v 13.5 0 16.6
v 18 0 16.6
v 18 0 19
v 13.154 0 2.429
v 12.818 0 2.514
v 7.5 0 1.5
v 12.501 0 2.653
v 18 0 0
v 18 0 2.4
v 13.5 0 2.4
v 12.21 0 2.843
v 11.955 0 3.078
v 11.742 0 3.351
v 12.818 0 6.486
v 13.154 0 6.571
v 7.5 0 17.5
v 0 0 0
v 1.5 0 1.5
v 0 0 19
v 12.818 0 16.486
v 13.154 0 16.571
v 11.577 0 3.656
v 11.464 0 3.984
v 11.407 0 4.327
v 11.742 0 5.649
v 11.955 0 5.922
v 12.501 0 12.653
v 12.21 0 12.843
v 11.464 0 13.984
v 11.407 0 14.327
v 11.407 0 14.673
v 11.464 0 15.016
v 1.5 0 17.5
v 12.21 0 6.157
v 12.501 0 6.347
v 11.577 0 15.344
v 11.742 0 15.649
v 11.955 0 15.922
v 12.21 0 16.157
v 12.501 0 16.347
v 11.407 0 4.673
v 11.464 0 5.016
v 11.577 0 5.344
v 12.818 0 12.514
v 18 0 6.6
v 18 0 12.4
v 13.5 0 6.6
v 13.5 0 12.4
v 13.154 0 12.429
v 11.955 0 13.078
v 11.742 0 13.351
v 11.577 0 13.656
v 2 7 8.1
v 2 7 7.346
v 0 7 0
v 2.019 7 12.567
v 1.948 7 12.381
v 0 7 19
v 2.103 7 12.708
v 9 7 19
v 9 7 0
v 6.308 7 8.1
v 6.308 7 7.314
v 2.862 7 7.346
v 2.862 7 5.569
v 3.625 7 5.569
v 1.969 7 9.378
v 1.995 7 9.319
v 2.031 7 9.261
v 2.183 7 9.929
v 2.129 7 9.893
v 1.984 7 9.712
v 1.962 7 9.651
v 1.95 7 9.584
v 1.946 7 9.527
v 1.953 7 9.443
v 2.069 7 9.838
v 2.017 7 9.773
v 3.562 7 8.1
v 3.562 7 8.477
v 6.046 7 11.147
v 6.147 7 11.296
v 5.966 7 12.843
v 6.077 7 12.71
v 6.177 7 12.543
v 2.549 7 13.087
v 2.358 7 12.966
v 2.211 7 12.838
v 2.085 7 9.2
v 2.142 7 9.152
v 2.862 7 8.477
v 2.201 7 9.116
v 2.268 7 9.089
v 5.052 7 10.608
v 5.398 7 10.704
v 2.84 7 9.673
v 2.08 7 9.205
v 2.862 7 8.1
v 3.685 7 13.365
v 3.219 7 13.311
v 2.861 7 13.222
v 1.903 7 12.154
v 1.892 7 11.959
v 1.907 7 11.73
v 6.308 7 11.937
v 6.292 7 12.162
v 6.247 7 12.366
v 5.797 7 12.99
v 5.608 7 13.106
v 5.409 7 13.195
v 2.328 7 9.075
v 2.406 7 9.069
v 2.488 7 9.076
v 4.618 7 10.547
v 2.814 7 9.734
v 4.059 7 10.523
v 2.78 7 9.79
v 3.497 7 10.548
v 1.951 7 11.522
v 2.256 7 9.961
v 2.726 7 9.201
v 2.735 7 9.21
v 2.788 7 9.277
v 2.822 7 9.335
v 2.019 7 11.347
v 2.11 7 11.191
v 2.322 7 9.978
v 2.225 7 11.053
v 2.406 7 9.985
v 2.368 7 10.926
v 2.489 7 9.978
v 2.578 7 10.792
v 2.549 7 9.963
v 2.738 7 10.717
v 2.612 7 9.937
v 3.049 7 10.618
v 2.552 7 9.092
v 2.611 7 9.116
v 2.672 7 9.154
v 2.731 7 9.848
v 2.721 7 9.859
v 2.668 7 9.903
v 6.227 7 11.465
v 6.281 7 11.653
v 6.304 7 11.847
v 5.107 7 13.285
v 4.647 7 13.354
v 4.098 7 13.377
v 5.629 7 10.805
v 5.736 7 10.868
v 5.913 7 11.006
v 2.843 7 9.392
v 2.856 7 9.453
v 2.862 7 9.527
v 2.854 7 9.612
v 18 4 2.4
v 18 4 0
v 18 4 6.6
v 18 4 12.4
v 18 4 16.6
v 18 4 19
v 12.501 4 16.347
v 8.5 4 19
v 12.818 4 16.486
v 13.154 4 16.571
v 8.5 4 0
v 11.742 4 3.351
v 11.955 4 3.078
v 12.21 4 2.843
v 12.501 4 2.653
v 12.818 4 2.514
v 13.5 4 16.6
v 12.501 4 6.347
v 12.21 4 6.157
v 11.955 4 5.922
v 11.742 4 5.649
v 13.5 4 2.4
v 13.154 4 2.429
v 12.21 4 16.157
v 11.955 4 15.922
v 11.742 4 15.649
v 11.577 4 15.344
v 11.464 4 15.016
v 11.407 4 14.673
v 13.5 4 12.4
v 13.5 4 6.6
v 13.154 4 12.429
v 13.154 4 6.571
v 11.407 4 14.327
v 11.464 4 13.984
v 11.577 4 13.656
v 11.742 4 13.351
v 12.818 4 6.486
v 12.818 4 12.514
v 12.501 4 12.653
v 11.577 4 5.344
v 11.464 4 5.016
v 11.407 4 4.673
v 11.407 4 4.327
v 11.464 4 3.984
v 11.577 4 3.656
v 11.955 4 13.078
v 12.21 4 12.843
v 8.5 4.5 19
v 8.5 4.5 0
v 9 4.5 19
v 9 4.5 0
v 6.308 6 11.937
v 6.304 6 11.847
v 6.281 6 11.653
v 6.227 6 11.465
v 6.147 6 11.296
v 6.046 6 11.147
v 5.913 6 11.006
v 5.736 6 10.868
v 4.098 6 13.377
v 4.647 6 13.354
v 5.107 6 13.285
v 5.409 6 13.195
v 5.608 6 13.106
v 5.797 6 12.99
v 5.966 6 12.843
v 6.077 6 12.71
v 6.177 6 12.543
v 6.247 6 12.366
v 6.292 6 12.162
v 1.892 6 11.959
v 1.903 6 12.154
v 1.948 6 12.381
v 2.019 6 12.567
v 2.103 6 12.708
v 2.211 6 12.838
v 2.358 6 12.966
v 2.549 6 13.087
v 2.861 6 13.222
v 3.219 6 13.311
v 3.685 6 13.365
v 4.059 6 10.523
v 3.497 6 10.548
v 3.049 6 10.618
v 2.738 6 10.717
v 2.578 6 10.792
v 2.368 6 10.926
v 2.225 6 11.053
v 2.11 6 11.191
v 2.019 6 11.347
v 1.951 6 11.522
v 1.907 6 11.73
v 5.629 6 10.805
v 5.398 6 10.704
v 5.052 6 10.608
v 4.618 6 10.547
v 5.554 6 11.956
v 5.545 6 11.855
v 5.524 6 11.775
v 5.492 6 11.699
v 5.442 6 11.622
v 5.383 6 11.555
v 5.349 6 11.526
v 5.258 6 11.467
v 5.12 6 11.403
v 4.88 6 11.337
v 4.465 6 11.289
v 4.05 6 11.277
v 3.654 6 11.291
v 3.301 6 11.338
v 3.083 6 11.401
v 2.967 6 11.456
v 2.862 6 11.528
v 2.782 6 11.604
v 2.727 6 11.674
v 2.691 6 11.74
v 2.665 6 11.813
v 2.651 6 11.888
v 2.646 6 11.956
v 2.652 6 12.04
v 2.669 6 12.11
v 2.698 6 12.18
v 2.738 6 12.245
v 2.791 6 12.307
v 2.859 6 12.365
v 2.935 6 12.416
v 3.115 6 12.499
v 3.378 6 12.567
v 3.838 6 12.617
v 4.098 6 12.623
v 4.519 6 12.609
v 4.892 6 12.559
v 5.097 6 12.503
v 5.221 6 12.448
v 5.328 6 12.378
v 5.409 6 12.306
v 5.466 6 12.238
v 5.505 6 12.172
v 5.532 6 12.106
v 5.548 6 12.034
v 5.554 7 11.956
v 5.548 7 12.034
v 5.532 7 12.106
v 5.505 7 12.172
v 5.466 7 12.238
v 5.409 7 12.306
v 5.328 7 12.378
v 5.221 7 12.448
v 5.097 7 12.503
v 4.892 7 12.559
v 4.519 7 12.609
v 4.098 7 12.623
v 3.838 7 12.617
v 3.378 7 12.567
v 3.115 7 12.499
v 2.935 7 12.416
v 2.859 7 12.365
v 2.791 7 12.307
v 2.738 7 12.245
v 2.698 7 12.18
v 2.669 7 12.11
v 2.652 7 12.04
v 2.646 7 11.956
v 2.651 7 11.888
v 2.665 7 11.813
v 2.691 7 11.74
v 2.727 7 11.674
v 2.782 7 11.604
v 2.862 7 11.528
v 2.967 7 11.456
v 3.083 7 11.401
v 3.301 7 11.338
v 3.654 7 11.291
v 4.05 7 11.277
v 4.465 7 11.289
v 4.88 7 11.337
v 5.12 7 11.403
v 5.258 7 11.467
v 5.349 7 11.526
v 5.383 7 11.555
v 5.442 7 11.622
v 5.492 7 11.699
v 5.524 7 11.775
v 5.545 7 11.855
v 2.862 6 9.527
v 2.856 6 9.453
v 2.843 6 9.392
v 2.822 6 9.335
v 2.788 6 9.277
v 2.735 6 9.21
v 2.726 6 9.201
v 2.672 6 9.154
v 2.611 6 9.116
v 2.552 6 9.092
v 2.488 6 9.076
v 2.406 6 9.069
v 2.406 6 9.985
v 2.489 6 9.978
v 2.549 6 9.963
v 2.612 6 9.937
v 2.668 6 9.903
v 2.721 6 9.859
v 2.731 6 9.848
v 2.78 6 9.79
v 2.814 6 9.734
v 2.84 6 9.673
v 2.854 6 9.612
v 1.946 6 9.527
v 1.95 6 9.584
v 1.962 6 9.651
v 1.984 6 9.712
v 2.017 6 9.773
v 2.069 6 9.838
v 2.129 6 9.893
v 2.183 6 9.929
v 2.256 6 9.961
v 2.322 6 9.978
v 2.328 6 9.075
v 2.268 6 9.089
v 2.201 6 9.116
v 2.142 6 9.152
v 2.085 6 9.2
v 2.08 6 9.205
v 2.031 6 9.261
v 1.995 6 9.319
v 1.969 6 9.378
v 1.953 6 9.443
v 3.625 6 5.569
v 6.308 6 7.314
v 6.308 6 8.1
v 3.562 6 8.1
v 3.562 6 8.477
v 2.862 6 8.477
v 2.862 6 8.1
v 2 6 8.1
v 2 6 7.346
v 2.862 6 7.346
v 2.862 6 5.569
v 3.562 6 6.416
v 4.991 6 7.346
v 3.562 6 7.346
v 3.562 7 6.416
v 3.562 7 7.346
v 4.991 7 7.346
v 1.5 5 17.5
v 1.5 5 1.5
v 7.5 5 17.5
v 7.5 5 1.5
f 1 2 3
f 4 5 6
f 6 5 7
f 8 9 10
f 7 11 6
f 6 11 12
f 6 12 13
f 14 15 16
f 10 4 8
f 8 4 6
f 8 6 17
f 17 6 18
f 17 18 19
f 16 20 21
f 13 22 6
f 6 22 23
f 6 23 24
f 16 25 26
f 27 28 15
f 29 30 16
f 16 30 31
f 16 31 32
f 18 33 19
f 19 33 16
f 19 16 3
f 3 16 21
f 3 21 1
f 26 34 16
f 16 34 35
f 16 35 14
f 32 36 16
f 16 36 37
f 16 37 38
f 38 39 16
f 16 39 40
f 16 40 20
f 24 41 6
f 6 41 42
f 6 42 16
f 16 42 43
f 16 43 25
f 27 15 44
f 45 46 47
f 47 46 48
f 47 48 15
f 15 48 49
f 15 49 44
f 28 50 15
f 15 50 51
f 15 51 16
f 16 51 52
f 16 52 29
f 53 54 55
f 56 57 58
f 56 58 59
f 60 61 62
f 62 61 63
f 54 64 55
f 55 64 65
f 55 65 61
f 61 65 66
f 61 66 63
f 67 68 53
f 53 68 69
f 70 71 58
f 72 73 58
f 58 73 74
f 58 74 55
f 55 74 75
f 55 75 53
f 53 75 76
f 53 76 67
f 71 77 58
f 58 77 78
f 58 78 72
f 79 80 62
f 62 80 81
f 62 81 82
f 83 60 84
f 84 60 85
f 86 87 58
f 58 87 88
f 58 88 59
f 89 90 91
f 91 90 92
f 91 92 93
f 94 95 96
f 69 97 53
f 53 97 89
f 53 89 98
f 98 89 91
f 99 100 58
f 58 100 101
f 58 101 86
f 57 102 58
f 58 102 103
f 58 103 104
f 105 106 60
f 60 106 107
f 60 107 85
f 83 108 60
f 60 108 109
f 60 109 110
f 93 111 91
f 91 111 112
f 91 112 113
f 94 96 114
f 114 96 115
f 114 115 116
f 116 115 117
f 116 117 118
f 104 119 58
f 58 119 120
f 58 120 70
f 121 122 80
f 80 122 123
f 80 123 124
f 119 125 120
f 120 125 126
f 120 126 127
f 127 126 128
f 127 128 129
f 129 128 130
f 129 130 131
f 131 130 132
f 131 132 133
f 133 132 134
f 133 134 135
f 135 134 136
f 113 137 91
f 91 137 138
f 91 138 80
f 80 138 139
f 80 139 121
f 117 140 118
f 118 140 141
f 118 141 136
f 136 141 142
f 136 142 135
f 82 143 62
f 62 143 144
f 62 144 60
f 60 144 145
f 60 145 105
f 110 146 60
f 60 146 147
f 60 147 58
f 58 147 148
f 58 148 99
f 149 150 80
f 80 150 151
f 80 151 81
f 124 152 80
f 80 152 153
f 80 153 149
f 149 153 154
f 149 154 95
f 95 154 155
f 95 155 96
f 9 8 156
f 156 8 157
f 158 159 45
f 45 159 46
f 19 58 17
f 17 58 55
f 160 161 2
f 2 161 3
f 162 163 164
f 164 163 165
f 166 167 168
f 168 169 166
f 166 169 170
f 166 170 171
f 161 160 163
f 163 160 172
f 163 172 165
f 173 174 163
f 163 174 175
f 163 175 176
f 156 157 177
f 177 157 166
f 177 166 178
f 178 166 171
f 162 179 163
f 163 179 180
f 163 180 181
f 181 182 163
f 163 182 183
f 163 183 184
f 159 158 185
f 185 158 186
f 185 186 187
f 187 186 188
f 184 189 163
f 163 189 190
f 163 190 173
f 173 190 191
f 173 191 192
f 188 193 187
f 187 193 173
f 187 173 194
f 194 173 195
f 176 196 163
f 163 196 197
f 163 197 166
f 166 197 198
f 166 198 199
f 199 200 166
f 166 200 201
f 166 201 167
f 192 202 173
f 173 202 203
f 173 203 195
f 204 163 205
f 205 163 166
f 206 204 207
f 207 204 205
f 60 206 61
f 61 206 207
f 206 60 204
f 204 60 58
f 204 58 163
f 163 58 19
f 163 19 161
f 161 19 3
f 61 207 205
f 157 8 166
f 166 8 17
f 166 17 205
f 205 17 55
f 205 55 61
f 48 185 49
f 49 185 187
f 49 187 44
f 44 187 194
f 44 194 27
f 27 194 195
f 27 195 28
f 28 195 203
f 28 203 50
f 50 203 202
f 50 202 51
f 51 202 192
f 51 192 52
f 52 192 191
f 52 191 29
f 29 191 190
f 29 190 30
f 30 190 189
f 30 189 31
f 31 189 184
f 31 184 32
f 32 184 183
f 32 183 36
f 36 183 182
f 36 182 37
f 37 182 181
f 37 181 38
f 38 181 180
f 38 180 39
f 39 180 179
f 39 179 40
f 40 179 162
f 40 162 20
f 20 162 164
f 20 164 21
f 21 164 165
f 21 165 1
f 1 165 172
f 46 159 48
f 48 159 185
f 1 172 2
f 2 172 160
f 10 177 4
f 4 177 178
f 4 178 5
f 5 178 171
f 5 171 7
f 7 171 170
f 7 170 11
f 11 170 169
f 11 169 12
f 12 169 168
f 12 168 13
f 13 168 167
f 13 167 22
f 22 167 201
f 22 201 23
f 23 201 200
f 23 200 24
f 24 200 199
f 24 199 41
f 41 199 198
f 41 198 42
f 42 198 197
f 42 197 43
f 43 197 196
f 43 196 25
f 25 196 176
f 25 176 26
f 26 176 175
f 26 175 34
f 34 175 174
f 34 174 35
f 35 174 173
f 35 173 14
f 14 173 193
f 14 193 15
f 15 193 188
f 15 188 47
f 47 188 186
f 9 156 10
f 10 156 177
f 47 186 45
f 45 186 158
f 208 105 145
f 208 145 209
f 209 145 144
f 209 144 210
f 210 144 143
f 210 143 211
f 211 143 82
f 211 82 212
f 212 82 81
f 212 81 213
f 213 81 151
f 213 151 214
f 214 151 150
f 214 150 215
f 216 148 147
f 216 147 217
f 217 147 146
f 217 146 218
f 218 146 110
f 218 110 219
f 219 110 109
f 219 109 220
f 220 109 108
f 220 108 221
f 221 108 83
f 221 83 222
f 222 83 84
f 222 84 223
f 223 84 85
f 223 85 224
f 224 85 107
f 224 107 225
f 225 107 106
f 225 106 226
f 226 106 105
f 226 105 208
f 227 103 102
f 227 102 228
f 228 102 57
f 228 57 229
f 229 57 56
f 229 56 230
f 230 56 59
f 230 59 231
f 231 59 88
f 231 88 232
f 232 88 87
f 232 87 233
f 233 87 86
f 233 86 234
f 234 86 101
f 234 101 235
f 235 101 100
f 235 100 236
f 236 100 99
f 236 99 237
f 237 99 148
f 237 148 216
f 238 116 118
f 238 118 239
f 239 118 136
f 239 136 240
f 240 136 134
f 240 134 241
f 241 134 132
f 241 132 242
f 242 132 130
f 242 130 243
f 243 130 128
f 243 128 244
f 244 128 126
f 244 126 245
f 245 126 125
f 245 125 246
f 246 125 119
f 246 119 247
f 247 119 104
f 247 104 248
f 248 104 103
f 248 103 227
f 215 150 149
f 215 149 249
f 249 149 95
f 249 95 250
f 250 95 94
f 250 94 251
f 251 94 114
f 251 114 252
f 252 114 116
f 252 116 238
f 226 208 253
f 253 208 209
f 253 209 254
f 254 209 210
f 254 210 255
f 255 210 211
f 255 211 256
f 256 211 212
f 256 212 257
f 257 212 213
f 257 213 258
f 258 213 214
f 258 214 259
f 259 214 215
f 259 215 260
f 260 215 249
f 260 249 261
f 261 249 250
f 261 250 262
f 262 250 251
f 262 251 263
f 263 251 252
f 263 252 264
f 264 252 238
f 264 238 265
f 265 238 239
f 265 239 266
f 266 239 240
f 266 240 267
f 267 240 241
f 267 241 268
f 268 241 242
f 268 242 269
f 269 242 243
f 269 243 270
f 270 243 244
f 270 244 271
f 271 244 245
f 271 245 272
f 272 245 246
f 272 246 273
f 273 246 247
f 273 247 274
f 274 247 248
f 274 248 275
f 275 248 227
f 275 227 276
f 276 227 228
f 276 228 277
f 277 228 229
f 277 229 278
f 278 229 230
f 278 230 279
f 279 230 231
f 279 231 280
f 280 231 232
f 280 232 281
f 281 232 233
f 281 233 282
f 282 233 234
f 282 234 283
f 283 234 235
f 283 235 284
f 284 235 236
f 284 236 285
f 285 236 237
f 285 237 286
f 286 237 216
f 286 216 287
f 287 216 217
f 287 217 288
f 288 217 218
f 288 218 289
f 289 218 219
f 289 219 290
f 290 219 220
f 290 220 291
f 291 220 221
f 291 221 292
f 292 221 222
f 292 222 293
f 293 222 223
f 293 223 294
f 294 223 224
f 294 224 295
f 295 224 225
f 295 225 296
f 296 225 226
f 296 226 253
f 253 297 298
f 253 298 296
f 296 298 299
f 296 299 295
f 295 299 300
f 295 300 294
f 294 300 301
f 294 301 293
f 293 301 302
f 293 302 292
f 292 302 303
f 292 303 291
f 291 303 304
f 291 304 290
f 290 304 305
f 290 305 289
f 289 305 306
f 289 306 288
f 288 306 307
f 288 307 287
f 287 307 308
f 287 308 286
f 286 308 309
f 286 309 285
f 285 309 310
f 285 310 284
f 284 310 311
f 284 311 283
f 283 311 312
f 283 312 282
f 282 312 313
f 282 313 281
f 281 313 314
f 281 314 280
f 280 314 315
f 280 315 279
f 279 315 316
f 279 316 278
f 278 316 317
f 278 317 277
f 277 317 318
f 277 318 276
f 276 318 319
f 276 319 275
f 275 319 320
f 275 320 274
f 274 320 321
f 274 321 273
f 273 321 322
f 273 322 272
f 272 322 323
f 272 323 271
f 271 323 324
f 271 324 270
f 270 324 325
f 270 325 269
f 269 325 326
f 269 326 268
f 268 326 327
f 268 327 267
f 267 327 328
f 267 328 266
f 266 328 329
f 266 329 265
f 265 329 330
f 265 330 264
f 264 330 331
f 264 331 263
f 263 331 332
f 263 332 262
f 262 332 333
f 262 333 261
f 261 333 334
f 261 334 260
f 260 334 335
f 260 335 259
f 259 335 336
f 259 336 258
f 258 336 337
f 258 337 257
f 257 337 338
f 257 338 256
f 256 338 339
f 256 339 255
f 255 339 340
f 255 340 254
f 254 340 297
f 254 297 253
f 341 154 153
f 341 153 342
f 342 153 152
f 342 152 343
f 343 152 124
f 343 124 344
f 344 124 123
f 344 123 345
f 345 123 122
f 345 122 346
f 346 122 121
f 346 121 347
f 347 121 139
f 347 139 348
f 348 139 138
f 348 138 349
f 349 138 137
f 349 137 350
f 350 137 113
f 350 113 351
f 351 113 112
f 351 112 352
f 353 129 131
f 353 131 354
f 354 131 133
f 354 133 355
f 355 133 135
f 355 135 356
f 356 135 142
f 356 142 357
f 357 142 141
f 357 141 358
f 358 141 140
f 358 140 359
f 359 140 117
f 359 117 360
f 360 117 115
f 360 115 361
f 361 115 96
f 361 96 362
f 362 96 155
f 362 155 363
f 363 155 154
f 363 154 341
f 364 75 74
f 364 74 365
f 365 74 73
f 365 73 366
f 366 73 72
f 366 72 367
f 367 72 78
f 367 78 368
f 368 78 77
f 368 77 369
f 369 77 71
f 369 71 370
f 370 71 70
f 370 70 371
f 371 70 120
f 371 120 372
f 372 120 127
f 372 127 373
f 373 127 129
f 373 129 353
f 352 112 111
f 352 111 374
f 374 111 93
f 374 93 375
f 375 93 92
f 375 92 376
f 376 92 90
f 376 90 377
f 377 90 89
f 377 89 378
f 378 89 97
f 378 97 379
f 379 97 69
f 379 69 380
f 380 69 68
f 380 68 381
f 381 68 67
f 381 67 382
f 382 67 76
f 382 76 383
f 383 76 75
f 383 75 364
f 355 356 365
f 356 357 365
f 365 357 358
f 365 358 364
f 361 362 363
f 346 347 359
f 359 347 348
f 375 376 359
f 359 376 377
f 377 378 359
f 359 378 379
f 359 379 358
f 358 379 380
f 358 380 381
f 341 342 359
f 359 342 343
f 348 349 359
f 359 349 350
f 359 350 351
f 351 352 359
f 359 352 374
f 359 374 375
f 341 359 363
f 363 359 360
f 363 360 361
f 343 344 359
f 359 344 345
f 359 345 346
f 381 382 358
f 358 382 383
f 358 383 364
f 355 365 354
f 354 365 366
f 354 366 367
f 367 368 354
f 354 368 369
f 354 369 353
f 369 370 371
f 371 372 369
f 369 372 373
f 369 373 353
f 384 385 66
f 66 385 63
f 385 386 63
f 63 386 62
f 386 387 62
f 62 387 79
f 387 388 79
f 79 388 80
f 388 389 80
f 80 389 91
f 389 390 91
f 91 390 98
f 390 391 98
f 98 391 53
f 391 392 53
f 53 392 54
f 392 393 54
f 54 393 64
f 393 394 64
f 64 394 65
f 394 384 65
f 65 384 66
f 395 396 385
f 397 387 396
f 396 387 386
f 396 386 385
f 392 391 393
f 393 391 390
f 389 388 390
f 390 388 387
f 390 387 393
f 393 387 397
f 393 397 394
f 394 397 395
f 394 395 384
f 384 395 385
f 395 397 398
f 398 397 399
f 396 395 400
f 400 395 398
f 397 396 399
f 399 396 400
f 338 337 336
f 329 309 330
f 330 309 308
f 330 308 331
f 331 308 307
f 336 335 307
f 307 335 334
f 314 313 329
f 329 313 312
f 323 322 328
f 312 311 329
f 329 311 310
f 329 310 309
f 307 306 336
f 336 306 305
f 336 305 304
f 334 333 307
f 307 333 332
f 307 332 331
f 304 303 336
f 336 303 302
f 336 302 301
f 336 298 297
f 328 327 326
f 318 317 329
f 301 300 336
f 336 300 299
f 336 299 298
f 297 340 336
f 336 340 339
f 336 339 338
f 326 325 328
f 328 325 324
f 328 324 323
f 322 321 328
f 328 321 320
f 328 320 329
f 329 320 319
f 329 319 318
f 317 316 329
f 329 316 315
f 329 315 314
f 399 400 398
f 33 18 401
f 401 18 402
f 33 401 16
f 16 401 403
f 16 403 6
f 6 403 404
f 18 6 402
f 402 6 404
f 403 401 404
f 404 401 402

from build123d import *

# Parameters (mm, degrees)
BOSS_EXTRUDE1_DEPTH = 19
CUT_EXTRUDE1_DEPTH  = 28.092434368
CUT_EXTRUDE2_DEPTH  = 1
SKETCH4_W           = 6
SKETCH4_H           = 16
CUT_EXTRUDE3_DEPTH  = 5


with BuildPart() as part:
    # Sketch1 → Boss-Extrude1 (new body)
    with BuildSketch(Plane.XY):
        Polygon((0, 0), (18, 0), (18, 4), (9, 4), (8.5, 4), (8.5, 4.5), (9, 4.5), (9, 7), (0, 7), align=None)
    extrude(amount=BOSS_EXTRUDE1_DEPTH)

    # Sketch2 → Cut-Extrude1 (cut, through all)
    with BuildSketch(Plane(origin=(0, 7, 0), x_dir=(1, 0, 0), z_dir=(0, 1, 0))):
        with BuildLine():
            Line((13.5, -2.4), (18, -2.4))
            Line((18, -2.4), (18, -6.6))
            Line((18, -6.6), (13.5, -6.6))
            ThreePointArc((13.5, -6.6), (11.4, -4.5), (13.5, -2.4))
        make_face()
        with BuildLine():
            Line((13.5, -12.4), (18, -12.4))
            Line((18, -12.4), (18, -16.6))
            Line((18, -16.6), (13.5, -16.6))
            ThreePointArc((13.5, -16.6), (11.4, -14.5), (13.5, -12.4))
        make_face()
    extrude(amount=-CUT_EXTRUDE1_DEPTH, mode=Mode.SUBTRACT)

    # Sketch3 → Cut-Extrude2 (cut)
    # profile 1 of 3: a face of its own
    with BuildSketch(Plane(origin=(0, 7, 0), x_dir=(1, 0, 0), z_dir=(0, 1, 0))):
        Polygon((6.307692308, -7.314182692), (6.307692308, -8.1), (3.561538462, -8.1), (3.561538462, -8.476923077), (2.861538462, -8.476923077), (2.861538462, -8.1), (2, -8.1), (2, -7.346153846), (2.861538462, -7.346153846), (2.861538462, -5.569230769), (3.624639423, -5.569230769), align=None)
        Polygon((3.561538462, -7.346153846), (4.990985577, -7.346153846), (3.561538462, -6.416466346), align=None, mode=Mode.SUBTRACT)
    # profile 2 of 3: a face of its own
    with BuildSketch(Plane(origin=(0, 7, 0), x_dir=(1, 0, 0), z_dir=(0, 1, 0))):
        with BuildLine():
            add(Edge.make_bspline(
                [(2.861538462, -9.526923077), (2.85988287, -9.557362204), (2.856623295, -9.617291589), (2.831853959, -9.703995704), (2.788312606, -9.782702644), (2.730502257, -9.85257974), (2.661701966, -9.911911527), (2.582376507, -9.953401025), (2.496427686, -9.98023852), (2.436302157, -9.983133621), (2.405528846, -9.984615385)],
                knots=[0, 0, 0, 0, 1.016476041, 2.001265769, 2.982571086, 4.001334304, 5.018889842, 5.99575474, 6.974191785, 8, 8, 8, 8], degree=3))
            add(Edge.make_bspline(
                [(2.405528846, -9.984615385), (2.374750787, -9.983143332), (2.31461598, -9.980267206), (2.228495667, -9.95321757), (2.148526587, -9.911977622), (2.078984136, -9.852574786), (2.020088959, -9.78299344), (1.976959039, -9.703815063), (1.950796284, -9.617456418), (1.947716214, -9.557391196), (1.946153846, -9.526923077)],
                knots=[0, 0, 0, 0, 1.022731703, 1.998234309, 2.980426153, 4.002090265, 5.023754376, 6.00211665, 6.986572482, 8, 8, 8, 8], degree=3))
            add(Edge.make_bspline(
                [(1.946153846, -9.526923077), (1.947729022, -9.496462175), (1.950834344, -9.436411182), (1.976740674, -9.350186567), (2.020380314, -9.271588463), (2.078913136, -9.202024595), (2.14877397, -9.142885964), (2.228244922, -9.100439216), (2.314648555, -9.073639214), (2.374761815, -9.070723224), (2.405528846, -9.069230769)],
                knots=[0, 0, 0, 0, 1.013910294, 1.9988351, 2.969460266, 3.991611077, 5.013761889, 6.000813773, 6.976781088, 8, 8, 8, 8], degree=3))
            add(Edge.make_bspline(
                [(2.405528846, -9.069230769), (2.436290937, -9.070733066), (2.496394544, -9.073668284), (2.582630141, -9.100255237), (2.661453239, -9.142949764), (2.730573405, -9.202019856), (2.788023525, -9.271877769), (2.832069332, -9.350006935), (2.856584954, -9.436576095), (2.859869955, -9.496491201), (2.861538462, -9.526923077)],
                knots=[0, 0, 0, 0, 1.02629359, 2.005193596, 2.986963232, 4.00500024, 5.0242455, 5.997787305, 6.983042999, 8, 8, 8, 8], degree=3))
        make_face()
    # profile 3 of 3: a face of its own
    with BuildSketch(Plane(origin=(0, 7, 0), x_dir=(1, 0, 0), z_dir=(0, 1, 0))):
        with BuildLine():
            add(Edge.make_bspline(
                [(6.307692308, -11.937379808), (6.307150683, -11.973869128), (6.306085705, -12.045616881), (6.29454866, -12.151287171), (6.277124504, -12.25307935), (6.252805809, -12.351380113), (6.220685788, -12.445523764), (6.18190987, -12.536269402), (6.135550949, -12.622853881), (6.082281439, -12.705477488), (6.02270567, -12.784525027), (5.953841518, -12.857366744), (5.878739381, -12.926822083), (5.796159568, -12.991739367), (5.705539209, -13.051391781), (5.608078808, -13.106892863), (5.502860985, -13.157526901), (5.389778503, -13.20396373), (5.267117399, -13.245505969), (5.133456997, -13.280398151), (4.988893108, -13.310732399), (4.832672601, -13.334621473), (4.665163984, -13.354174114), (4.486053808, -13.366949594), (4.295843307, -13.375837098), (4.16535578, -13.376554506), (4.098317308, -13.376923077)],
                knots=[0, 0, 0, 0, 0.879087513, 1.728520926, 2.558587148, 3.366762743, 4.166157112, 4.95337177, 5.74258602, 6.530032775, 7.320866164, 8.124307838, 8.942260106, 9.784645725, 10.652593514, 11.554662219, 12.485739241, 13.464770064, 14.499274465, 15.604285219, 16.792026686, 18.057713884, 19.411711354, 20.855437135, 22.384468668, 24, 24, 24, 24], degree=3))
            add(Edge.make_bspline(
                [(4.098317308, -13.376923077), (4.030440525, -13.37652196), (3.898557155, -13.375742597), (3.70660119, -13.367345458), (3.526210383, -13.3528853), (3.357403645, -13.334247649), (3.200269274, -13.308720394), (3.054403265, -13.278820445), (2.919848806, -13.243303124), (2.79694166, -13.200378221), (2.68359105, -13.154337682), (2.578944999, -13.103208582), (2.481123496, -13.050067474), (2.391489769, -12.991693005), (2.309846766, -12.929325786), (2.235444428, -12.863944923), (2.169307235, -12.794157234), (2.110069404, -12.7210064), (2.058216793, -12.642714885), (2.01366831, -12.55962707), (1.976853175, -12.471182306), (1.9451208, -12.378667246), (1.922290893, -12.280436063), (1.90419103, -12.178005479), (1.894184694, -12.070231506), (1.892943628, -11.99685416), (1.892307692, -11.959254808)],
                knots=[0, 0, 0, 0, 1.643682949, 3.193646483, 4.651618242, 6.025629174, 7.305184366, 8.505292942, 9.630500342, 10.672179876, 11.655924581, 12.591484594, 13.491256898, 14.350247848, 15.17884557, 15.977481787, 16.746098769, 17.504475725, 18.254166354, 19.016819136, 19.783753977, 20.571954997, 21.382401421, 22.223156612, 23.089526058, 24, 24, 24, 24], degree=3))
            add(Edge.make_bspline(
                [(1.892307692, -11.959254808), (1.892958632, -11.921657209), (1.894233814, -11.848004067), (1.904086281, -11.739928272), (1.922520224, -11.636723558), (1.944975925, -11.537578193), (1.977024282, -11.443362893), (2.014430371, -11.353389364), (2.059233294, -11.268105532), (2.110855853, -11.187457673), (2.170065111, -11.11173783), (2.236213665, -11.03976485), (2.309137681, -10.971699163), (2.389652904, -10.908575843), (2.476684941, -10.84936136), (2.571227482, -10.794672603), (2.673143257, -10.744544816), (2.782572889, -10.697400516), (2.901878097, -10.656467963), (3.032100284, -10.619915704), (3.174468576, -10.590475047), (3.328448015, -10.564687625), (3.494578206, -10.547373), (3.672092814, -10.532564683), (3.861539617, -10.524279313), (3.991739434, -10.523485583), (4.058774038, -10.523076923)],
                knots=[0, 0, 0, 0, 0.917197984, 1.796777363, 2.643741708, 3.473481078, 4.273990801, 5.068160217, 5.848535553, 6.620952589, 7.401027954, 8.190319769, 9.003592045, 9.831693788, 10.683727512, 11.569696396, 12.49373307, 13.453184301, 14.474457586, 15.568383184, 16.750575061, 18.019320986, 19.375517054, 20.823796471, 22.364701649, 24, 24, 24, 24], degree=3))
            add(Edge.make_bspline(
                [(4.058774038, -10.523076923), (4.151913091, -10.523808273), (4.331626093, -10.525219423), (4.591295751, -10.542644047), (4.83113749, -10.569002763), (5.051441104, -10.605085819), (5.251775391, -10.653685764), (5.432082806, -10.713328421), (5.594148159, -10.781764373), (5.690172203, -10.839987872), (5.736418269, -10.868028846)],
                knots=[0, 0, 0, 0, 1.288526675, 2.486228817, 3.599112392, 4.626206381, 5.5730174, 6.447949553, 7.252518174, 8, 8, 8, 8], degree=3))
            add(Edge.make_bspline(
                [(5.736418269, -10.868028846), (5.781849131, -10.900640072), (5.870675418, -10.964401446), (5.987287729, -11.07588999), (6.087020287, -11.195669914), (6.167616056, -11.326201431), (6.231173886, -11.46542013), (6.276064066, -11.614521274), (6.302219176, -11.772954258), (6.305840687, -11.881752831), (6.307692308, -11.937379808)],
                knots=[0, 0, 0, 0, 1.058512271, 2.069600068, 3.047294572, 4.004278952, 4.967380941, 5.939006123, 6.946246673, 8, 8, 8, 8], degree=3))
        make_face()
        with BuildLine():
            add(Edge.make_bspline(
                [(5.553846154, -11.955889423), (5.552270668, -11.922908887), (5.54918188, -11.858249528), (5.523401693, -11.764568479), (5.48271655, -11.676626924), (5.434760512, -11.609308285), (5.387973655, -11.559148094), (5.34693293, -11.522793846), (5.298932536, -11.490234906), (5.246047261, -11.458820008), (5.186821663, -11.430869169), (5.12274956, -11.403076295), (5.051691887, -11.380433104), (4.974987834, -11.358133021), (4.89047493, -11.338636996), (4.797488532, -11.322180048), (4.695329433, -11.307988824), (4.584245274, -11.296006011), (4.463793783, -11.288387596), (4.3342554, -11.281014932), (4.195362046, -11.278331006), (4.099719168, -11.277402337), (4.050360577, -11.276923077)],
                knots=[0, 0, 0, 0, 1.076821401, 2.111141558, 3.153197101, 4.23200803, 4.796476379, 5.394298193, 6.020090776, 6.690078086, 7.403703365, 8.159894791, 8.971856079, 9.83973388, 10.771758647, 11.806038152, 12.926526118, 14.143777411, 15.458313878, 16.872423957, 18.385946227, 20, 20, 20, 20], degree=3))
            add(Edge.make_bspline(
                [(4.050360577, -11.276923077), (3.986412475, -11.277690687), (3.863787247, -11.279162637), (3.687454343, -11.286901656), (3.526954651, -11.302324436), (3.381298609, -11.321757427), (3.251038899, -11.348230248), (3.136135085, -11.381192718), (3.035736471, -11.41774611), (2.951319527, -11.463577141), (2.879125714, -11.512681076), (2.816674456, -11.565091786), (2.764651799, -11.621723368), (2.720485601, -11.680883073), (2.687689615, -11.744764797), (2.663780285, -11.812058623), (2.649202201, -11.882913935), (2.647175838, -11.931423642), (2.646153846, -11.955889423)],
                knots=[0, 0, 0, 0, 1.772047989, 3.398033405, 4.888860297, 6.238411839, 7.468309579, 8.567754056, 9.549141588, 10.421774021, 11.221426488, 11.965694757, 12.675067502, 13.348095901, 14.005005053, 14.656328889, 15.322321954, 16, 16, 16, 16], degree=3))
            add(Edge.make_bspline(
                [(2.646153846, -11.955889423), (2.64685234, -11.979516527), (2.648219904, -12.025775459), (2.662257763, -12.093231342), (2.685080272, -12.157022417), (2.717364314, -12.216956081), (2.758418413, -12.273246707), (2.808422978, -12.325619182), (2.867876439, -12.373678523), (2.911999699, -12.401678113), (2.934735577, -12.416105769)],
                knots=[0, 0, 0, 0, 0.992283464, 1.942767638, 2.88273346, 3.832339453, 4.79467288, 5.803907806, 6.868395428, 8, 8, 8, 8], degree=3))
            add(Edge.make_bspline(
                [(2.934735577, -12.416105769), (2.965802388, -12.43309715), (3.030946973, -12.468726699), (3.140897888, -12.509852713), (3.264748166, -12.544936354), (3.403499208, -12.573060354), (3.556594281, -12.59533645), (3.724147171, -12.61236653), (3.906398045, -12.62101668), (4.032684545, -12.622372359), (4.098317308, -12.623076923)],
                knots=[0, 0, 0, 0, 0.710996797, 1.490902623, 2.352723643, 3.296875318, 4.334065587, 5.461510359, 6.680713396, 8, 8, 8, 8], degree=3))
            add(Edge.make_bspline(
                [(4.098317308, -12.623076923), (4.164517758, -12.622799909), (4.291942324, -12.622266703), (4.474875271, -12.612483906), (4.641954183, -12.598860635), (4.79280593, -12.578933654), (4.927797071, -12.55329418), (5.046917647, -12.521692777), (5.150406, -12.484439109), (5.238147698, -12.440254292), (5.312742503, -12.391337042), (5.37665067, -12.339343271), (5.431670617, -12.284183068), (5.476266621, -12.225262109), (5.511810773, -12.162973601), (5.536033359, -12.096981471), (5.55093428, -12.027505248), (5.552862428, -11.980083575), (5.553846154, -11.955889423)],
                knots=[0, 0, 0, 0, 1.793903324, 3.452957663, 4.963427329, 6.336122014, 7.574844885, 8.684777121, 9.673127442, 10.55010789, 11.340650774, 12.086136756, 12.779466299, 13.446812155, 14.083183996, 14.715685896, 15.34475337, 16, 16, 16, 16], degree=3))
        make_face(mode=Mode.SUBTRACT)
    extrude(amount=-CUT_EXTRUDE2_DEPTH, mode=Mode.SUBTRACT)

    # Sketch4 → Cut-Extrude3 (cut)
    with BuildSketch(Plane.XZ):
        with Locations((4.5, 9.5)):
            Rectangle(SKETCH4_W, SKETCH4_H)
    extrude(amount=-CUT_EXTRUDE3_DEPTH, mode=Mode.SUBTRACT)


solid = part.part
